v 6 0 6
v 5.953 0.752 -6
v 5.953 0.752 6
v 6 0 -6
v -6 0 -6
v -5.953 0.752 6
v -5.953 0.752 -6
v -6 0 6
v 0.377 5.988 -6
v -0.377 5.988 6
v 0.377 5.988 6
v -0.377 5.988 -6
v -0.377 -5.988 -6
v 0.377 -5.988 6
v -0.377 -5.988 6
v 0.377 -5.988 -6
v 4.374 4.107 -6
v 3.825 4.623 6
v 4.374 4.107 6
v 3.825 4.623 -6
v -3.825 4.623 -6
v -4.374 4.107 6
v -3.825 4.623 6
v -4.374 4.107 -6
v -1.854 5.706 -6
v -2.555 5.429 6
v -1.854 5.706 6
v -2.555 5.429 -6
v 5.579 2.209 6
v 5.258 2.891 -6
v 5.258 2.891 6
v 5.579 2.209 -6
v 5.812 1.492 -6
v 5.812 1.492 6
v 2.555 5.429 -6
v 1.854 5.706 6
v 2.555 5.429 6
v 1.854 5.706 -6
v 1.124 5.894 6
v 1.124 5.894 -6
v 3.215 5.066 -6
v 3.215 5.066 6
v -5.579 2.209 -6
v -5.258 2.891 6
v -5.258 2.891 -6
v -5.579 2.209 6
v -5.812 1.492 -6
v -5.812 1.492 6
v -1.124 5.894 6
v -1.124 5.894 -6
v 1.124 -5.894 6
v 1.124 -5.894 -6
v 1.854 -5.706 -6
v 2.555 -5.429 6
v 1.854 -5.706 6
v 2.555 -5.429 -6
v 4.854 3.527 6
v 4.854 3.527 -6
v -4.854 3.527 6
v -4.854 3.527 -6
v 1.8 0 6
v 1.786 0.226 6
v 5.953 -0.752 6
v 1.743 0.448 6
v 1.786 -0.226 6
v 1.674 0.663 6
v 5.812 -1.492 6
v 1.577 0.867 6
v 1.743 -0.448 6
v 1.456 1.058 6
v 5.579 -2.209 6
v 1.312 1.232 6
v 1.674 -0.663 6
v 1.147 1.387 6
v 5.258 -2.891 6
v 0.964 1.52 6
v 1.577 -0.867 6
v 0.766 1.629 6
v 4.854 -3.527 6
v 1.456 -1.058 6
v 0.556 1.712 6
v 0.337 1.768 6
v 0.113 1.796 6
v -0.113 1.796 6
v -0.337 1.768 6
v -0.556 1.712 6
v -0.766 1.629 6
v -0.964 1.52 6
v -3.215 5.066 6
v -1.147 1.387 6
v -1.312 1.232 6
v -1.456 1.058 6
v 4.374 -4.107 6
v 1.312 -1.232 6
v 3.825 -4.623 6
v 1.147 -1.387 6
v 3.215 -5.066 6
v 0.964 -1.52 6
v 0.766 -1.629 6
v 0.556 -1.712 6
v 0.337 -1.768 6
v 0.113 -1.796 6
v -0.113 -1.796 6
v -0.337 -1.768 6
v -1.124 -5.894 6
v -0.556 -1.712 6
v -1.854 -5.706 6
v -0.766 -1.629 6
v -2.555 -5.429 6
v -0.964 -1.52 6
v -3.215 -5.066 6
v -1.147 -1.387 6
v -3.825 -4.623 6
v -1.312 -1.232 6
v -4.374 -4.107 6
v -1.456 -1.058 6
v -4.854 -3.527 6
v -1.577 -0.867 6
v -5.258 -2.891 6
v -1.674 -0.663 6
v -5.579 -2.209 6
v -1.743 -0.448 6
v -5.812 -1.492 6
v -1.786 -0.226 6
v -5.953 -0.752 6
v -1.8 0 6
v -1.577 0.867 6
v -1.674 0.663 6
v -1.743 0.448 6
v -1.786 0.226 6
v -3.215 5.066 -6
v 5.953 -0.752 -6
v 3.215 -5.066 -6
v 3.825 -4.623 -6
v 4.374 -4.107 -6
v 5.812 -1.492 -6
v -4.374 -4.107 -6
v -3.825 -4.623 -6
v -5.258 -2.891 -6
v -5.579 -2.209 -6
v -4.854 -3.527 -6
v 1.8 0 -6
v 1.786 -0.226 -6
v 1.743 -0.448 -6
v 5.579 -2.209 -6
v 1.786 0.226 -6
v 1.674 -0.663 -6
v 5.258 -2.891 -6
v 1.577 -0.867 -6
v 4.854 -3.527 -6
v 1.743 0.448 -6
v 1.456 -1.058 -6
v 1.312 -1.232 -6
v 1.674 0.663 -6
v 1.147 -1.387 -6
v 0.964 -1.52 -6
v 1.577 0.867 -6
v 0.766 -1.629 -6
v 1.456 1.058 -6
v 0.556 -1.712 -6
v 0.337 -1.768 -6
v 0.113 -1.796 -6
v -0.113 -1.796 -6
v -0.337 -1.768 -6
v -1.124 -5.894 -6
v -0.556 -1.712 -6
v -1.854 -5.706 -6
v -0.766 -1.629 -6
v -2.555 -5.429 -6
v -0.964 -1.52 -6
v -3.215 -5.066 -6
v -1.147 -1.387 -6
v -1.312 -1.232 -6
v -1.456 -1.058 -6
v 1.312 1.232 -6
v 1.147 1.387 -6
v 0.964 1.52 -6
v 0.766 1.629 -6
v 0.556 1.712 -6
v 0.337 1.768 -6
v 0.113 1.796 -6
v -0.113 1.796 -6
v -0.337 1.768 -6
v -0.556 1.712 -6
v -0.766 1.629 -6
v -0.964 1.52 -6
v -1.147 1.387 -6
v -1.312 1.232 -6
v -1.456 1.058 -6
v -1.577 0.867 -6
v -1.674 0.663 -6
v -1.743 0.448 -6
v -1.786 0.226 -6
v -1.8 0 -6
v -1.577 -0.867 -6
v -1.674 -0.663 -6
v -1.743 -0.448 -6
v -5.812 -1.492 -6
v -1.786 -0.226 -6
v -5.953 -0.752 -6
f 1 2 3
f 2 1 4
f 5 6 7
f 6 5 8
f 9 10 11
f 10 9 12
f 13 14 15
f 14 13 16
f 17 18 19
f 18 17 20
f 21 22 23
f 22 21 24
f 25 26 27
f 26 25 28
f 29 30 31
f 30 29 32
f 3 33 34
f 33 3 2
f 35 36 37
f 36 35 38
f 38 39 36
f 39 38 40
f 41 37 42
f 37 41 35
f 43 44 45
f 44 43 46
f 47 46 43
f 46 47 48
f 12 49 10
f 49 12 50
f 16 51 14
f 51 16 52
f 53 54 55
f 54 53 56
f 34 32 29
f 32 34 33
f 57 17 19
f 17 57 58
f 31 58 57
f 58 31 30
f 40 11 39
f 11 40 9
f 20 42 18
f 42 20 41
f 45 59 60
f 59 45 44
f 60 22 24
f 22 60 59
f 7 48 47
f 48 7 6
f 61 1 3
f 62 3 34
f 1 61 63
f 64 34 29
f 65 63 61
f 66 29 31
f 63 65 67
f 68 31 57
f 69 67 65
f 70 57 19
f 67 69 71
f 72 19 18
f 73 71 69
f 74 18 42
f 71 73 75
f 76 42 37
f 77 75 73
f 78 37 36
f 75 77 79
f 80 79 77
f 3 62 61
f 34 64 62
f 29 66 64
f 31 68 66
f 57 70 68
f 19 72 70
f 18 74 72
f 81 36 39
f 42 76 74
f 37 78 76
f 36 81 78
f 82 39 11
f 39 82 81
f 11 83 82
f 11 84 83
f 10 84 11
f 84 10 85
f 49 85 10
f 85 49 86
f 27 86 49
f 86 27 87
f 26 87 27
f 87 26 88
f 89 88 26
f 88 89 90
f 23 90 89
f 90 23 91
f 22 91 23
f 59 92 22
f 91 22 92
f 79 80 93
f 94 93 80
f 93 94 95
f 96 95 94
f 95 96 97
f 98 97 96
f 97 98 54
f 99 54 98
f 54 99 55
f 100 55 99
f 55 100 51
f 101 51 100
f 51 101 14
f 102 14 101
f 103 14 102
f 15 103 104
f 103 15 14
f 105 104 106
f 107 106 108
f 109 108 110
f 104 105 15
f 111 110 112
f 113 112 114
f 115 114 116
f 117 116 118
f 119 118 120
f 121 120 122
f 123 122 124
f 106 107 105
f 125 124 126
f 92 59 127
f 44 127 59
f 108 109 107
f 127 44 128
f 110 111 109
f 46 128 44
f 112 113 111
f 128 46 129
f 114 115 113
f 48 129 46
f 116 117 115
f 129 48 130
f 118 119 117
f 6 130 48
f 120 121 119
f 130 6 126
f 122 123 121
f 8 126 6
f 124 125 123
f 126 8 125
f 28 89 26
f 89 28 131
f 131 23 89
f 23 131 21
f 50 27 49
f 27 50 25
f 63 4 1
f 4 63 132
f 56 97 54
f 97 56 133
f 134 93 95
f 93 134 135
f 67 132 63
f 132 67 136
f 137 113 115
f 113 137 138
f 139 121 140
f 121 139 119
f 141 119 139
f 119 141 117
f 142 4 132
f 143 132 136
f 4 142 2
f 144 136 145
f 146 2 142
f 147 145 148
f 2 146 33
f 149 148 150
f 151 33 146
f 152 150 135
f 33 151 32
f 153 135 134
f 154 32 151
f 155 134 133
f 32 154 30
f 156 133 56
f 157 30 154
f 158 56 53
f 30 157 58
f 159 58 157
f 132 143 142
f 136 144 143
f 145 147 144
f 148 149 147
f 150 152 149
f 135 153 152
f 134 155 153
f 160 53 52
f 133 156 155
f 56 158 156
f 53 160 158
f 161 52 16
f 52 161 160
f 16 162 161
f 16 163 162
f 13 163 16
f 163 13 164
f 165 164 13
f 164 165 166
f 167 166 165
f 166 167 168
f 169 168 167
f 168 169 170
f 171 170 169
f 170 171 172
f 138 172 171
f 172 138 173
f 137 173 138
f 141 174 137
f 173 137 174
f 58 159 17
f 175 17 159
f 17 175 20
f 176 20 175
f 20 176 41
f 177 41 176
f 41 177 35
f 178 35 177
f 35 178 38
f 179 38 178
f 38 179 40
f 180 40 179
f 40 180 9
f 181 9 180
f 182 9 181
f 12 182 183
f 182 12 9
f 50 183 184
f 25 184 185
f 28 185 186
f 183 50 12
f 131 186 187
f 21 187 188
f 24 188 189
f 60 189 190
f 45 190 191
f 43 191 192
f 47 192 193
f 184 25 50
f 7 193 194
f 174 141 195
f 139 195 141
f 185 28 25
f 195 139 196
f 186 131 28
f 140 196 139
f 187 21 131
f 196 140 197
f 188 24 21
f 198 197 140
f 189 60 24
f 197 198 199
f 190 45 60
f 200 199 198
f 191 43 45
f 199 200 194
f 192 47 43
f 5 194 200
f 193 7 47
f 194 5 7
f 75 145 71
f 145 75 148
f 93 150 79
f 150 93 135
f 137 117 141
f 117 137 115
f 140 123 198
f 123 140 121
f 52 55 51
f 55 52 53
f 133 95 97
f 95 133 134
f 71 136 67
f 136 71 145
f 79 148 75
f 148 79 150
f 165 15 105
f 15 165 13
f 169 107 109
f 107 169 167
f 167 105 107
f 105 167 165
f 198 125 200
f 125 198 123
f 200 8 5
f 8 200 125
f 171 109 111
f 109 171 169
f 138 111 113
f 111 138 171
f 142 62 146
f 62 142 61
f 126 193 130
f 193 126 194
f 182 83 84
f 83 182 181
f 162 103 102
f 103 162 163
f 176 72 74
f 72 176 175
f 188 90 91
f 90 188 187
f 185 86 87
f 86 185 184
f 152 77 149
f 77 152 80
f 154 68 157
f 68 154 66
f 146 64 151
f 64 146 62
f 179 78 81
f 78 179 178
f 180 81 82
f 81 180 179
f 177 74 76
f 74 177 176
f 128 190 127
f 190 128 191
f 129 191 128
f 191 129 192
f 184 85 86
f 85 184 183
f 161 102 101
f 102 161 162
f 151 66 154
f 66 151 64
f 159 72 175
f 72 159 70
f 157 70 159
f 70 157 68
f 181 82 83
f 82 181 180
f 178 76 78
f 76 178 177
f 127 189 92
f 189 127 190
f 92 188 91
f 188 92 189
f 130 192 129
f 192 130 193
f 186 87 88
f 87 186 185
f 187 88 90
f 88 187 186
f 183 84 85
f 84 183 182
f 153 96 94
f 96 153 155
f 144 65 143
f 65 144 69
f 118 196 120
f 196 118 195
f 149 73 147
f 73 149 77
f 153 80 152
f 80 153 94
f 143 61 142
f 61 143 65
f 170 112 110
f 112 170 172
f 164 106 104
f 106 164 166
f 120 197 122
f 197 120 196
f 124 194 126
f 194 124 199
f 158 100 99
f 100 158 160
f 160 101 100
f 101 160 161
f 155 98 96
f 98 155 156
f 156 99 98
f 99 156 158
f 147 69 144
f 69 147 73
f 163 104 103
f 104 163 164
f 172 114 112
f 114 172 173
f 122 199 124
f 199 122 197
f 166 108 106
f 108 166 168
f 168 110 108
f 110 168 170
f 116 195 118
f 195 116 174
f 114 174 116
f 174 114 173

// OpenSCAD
$fn = 50;


difference() {
	union() {
		translate(v = [0, 0, -6.0000000000]) {
			cylinder(h = 12, r = 6.0000000000);
		}
	}
	union() {
		translate(v = [0, 0, -100.0000000000]) {
			cylinder(h = 200, r = 1.8000000000);
		}
	}
}
